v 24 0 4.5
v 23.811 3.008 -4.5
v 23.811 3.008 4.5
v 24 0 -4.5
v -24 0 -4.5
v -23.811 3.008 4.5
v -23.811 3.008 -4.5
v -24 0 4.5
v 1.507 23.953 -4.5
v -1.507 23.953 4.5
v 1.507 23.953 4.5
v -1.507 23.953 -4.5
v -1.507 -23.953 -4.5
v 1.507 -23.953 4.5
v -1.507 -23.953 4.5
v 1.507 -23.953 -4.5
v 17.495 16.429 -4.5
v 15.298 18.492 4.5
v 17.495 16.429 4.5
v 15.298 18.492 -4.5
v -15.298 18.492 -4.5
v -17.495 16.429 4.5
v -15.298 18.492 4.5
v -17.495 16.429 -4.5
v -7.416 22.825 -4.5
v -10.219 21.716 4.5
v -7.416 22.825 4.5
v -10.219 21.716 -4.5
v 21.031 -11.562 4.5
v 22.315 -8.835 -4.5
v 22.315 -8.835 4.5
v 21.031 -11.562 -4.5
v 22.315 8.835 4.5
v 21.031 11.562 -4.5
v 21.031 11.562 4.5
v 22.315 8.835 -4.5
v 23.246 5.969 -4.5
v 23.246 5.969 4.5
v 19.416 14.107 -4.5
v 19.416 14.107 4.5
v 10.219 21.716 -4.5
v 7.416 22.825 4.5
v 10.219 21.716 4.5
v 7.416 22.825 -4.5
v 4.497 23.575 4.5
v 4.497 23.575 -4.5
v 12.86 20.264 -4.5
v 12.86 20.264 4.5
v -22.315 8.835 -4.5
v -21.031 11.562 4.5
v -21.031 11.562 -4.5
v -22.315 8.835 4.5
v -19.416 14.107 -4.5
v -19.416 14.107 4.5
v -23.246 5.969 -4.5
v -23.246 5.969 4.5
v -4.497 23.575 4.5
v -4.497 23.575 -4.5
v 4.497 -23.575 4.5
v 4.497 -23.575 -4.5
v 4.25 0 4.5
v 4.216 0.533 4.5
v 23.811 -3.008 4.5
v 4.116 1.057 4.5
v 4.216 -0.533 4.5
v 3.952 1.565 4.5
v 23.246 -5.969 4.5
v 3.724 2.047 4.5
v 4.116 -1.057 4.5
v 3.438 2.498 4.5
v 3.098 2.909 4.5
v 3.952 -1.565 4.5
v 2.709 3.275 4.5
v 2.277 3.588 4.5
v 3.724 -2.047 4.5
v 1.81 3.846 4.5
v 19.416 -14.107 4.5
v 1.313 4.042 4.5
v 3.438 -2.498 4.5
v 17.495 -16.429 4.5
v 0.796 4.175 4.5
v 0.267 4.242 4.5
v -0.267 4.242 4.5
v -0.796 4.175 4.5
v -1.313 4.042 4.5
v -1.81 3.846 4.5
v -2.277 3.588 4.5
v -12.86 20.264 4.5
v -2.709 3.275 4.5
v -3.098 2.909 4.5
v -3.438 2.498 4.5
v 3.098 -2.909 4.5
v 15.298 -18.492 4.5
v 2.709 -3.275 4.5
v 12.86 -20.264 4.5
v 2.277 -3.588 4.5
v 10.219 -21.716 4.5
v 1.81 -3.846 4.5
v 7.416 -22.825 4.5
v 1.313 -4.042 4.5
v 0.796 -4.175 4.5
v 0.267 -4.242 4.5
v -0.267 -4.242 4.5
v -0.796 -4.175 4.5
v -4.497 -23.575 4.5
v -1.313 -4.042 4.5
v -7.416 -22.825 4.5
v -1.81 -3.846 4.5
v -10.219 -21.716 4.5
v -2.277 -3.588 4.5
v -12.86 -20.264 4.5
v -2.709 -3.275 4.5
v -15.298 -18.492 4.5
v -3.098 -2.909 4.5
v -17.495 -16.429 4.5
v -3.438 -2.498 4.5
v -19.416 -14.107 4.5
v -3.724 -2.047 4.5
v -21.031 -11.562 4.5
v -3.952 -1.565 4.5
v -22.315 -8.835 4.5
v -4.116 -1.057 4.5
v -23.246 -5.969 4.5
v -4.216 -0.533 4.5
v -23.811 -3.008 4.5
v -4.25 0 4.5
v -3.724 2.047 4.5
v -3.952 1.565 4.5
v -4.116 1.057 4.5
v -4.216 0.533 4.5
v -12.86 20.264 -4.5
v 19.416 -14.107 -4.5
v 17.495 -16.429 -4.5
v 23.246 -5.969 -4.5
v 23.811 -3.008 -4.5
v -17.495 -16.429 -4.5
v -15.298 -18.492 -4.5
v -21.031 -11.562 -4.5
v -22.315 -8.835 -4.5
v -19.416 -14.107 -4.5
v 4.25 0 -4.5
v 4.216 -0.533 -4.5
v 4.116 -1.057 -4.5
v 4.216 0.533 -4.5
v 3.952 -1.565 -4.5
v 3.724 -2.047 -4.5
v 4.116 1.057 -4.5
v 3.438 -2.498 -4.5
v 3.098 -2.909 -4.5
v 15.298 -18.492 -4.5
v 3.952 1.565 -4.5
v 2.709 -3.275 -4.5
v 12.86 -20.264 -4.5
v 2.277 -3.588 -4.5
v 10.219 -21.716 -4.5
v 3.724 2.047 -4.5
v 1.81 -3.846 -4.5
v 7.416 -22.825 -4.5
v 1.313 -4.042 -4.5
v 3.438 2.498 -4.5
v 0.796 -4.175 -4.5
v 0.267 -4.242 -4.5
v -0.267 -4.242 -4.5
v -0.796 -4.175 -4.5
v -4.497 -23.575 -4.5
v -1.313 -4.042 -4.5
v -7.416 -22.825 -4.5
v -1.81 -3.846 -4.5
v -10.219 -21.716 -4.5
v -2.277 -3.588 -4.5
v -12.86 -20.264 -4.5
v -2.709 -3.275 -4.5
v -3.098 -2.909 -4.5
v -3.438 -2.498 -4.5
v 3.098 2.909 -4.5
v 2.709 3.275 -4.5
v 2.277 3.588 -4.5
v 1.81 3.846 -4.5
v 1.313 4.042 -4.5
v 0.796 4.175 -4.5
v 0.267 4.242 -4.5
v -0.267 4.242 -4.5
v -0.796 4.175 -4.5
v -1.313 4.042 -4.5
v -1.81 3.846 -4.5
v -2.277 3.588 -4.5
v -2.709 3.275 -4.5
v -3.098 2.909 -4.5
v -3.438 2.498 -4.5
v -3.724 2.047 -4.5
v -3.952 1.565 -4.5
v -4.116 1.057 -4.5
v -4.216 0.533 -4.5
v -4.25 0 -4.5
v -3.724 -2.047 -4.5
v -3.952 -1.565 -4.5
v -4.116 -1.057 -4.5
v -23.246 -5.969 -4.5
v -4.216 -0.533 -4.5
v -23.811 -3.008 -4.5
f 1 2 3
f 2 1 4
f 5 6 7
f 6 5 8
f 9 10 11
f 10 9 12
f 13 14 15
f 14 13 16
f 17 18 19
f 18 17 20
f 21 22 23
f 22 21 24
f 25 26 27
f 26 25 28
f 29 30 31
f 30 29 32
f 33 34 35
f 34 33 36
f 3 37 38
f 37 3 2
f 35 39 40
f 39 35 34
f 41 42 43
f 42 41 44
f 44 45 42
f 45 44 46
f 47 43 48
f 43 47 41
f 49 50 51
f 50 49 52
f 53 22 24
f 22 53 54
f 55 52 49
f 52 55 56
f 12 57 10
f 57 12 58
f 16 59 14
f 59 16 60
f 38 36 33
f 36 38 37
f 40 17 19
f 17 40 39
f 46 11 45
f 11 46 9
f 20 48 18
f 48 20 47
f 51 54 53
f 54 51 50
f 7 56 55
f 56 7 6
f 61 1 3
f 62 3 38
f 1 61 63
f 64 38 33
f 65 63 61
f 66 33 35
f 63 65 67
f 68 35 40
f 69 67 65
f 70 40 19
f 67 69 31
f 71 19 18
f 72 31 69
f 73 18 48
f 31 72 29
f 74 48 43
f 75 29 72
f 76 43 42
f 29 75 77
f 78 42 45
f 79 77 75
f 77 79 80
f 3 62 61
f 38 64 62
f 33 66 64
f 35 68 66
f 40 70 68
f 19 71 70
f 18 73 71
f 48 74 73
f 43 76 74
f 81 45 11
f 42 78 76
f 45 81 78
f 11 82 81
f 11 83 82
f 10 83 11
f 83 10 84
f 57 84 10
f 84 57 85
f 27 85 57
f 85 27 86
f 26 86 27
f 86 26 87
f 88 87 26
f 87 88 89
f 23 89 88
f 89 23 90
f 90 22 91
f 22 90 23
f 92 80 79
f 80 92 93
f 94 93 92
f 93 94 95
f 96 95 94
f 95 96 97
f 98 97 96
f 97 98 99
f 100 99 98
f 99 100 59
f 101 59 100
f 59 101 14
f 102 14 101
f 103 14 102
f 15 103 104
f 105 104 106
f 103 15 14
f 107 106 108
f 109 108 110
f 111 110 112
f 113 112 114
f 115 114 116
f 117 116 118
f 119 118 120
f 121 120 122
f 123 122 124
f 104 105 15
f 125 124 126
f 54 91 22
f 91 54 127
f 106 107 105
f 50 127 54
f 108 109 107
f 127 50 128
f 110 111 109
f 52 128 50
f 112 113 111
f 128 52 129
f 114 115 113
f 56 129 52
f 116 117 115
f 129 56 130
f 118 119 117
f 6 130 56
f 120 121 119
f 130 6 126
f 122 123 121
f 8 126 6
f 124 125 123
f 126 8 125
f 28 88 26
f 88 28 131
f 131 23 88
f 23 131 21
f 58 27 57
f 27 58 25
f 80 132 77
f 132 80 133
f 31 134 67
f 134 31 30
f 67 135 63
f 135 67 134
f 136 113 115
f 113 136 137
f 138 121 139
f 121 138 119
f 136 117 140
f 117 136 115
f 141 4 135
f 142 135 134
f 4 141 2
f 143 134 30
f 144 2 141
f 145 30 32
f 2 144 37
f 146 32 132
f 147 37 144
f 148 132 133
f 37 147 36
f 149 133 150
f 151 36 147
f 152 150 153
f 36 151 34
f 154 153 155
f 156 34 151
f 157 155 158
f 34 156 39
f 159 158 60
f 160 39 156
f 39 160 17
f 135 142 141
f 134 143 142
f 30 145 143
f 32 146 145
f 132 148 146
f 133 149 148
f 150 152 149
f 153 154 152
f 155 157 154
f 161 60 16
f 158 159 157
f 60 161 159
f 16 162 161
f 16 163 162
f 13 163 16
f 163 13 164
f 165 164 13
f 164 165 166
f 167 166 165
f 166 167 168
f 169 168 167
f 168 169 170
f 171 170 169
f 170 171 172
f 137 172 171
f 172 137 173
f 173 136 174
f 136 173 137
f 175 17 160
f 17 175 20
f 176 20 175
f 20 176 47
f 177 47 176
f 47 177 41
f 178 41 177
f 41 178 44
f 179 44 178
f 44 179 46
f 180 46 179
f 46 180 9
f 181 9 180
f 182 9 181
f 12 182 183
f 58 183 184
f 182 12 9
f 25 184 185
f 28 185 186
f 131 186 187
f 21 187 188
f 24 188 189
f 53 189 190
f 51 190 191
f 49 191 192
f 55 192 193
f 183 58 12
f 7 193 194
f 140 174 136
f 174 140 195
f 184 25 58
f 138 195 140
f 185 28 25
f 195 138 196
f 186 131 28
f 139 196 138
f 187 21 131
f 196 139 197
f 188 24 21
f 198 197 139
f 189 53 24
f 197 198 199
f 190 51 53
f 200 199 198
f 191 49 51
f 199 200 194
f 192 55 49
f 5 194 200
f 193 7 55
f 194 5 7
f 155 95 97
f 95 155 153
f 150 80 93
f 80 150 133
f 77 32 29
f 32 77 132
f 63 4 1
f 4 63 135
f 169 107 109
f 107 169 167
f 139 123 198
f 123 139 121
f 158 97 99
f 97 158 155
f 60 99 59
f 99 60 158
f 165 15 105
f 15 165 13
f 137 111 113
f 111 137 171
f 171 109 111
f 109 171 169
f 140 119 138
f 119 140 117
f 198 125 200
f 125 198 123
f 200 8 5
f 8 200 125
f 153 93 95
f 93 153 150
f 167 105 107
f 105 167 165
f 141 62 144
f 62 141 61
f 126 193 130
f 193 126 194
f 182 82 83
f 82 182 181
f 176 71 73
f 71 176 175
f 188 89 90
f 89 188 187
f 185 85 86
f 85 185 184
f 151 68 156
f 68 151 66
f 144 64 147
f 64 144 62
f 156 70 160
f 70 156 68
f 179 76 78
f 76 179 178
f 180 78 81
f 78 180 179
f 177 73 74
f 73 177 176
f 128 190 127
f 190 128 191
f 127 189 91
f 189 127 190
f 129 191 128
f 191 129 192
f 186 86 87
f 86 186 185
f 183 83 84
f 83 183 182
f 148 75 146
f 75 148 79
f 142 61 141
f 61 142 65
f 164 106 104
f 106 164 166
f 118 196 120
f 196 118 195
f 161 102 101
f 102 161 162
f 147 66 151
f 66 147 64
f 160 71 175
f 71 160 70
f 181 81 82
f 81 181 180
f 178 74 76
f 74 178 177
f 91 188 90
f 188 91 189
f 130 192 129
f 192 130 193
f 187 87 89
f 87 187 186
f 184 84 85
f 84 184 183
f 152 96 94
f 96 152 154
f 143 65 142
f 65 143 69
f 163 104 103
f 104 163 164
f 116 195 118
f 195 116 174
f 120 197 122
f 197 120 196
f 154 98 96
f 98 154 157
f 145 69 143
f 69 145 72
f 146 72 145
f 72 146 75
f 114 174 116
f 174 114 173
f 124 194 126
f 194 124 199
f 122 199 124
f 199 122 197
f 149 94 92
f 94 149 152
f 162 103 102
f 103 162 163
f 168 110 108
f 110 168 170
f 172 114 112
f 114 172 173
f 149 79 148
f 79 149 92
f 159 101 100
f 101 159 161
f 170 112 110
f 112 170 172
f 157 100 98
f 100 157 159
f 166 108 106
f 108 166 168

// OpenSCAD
$fn = 50;


difference() {
	union() {
		translate(v = [0, 0, -4.5000000000]) {
			cylinder(h = 9, r = 24.0000000000);
		}
	}
	union() {
		translate(v = [0, 0, -100.0000000000]) {
			cylinder(h = 200, r = 4.2500000000);
		}
	}
}
